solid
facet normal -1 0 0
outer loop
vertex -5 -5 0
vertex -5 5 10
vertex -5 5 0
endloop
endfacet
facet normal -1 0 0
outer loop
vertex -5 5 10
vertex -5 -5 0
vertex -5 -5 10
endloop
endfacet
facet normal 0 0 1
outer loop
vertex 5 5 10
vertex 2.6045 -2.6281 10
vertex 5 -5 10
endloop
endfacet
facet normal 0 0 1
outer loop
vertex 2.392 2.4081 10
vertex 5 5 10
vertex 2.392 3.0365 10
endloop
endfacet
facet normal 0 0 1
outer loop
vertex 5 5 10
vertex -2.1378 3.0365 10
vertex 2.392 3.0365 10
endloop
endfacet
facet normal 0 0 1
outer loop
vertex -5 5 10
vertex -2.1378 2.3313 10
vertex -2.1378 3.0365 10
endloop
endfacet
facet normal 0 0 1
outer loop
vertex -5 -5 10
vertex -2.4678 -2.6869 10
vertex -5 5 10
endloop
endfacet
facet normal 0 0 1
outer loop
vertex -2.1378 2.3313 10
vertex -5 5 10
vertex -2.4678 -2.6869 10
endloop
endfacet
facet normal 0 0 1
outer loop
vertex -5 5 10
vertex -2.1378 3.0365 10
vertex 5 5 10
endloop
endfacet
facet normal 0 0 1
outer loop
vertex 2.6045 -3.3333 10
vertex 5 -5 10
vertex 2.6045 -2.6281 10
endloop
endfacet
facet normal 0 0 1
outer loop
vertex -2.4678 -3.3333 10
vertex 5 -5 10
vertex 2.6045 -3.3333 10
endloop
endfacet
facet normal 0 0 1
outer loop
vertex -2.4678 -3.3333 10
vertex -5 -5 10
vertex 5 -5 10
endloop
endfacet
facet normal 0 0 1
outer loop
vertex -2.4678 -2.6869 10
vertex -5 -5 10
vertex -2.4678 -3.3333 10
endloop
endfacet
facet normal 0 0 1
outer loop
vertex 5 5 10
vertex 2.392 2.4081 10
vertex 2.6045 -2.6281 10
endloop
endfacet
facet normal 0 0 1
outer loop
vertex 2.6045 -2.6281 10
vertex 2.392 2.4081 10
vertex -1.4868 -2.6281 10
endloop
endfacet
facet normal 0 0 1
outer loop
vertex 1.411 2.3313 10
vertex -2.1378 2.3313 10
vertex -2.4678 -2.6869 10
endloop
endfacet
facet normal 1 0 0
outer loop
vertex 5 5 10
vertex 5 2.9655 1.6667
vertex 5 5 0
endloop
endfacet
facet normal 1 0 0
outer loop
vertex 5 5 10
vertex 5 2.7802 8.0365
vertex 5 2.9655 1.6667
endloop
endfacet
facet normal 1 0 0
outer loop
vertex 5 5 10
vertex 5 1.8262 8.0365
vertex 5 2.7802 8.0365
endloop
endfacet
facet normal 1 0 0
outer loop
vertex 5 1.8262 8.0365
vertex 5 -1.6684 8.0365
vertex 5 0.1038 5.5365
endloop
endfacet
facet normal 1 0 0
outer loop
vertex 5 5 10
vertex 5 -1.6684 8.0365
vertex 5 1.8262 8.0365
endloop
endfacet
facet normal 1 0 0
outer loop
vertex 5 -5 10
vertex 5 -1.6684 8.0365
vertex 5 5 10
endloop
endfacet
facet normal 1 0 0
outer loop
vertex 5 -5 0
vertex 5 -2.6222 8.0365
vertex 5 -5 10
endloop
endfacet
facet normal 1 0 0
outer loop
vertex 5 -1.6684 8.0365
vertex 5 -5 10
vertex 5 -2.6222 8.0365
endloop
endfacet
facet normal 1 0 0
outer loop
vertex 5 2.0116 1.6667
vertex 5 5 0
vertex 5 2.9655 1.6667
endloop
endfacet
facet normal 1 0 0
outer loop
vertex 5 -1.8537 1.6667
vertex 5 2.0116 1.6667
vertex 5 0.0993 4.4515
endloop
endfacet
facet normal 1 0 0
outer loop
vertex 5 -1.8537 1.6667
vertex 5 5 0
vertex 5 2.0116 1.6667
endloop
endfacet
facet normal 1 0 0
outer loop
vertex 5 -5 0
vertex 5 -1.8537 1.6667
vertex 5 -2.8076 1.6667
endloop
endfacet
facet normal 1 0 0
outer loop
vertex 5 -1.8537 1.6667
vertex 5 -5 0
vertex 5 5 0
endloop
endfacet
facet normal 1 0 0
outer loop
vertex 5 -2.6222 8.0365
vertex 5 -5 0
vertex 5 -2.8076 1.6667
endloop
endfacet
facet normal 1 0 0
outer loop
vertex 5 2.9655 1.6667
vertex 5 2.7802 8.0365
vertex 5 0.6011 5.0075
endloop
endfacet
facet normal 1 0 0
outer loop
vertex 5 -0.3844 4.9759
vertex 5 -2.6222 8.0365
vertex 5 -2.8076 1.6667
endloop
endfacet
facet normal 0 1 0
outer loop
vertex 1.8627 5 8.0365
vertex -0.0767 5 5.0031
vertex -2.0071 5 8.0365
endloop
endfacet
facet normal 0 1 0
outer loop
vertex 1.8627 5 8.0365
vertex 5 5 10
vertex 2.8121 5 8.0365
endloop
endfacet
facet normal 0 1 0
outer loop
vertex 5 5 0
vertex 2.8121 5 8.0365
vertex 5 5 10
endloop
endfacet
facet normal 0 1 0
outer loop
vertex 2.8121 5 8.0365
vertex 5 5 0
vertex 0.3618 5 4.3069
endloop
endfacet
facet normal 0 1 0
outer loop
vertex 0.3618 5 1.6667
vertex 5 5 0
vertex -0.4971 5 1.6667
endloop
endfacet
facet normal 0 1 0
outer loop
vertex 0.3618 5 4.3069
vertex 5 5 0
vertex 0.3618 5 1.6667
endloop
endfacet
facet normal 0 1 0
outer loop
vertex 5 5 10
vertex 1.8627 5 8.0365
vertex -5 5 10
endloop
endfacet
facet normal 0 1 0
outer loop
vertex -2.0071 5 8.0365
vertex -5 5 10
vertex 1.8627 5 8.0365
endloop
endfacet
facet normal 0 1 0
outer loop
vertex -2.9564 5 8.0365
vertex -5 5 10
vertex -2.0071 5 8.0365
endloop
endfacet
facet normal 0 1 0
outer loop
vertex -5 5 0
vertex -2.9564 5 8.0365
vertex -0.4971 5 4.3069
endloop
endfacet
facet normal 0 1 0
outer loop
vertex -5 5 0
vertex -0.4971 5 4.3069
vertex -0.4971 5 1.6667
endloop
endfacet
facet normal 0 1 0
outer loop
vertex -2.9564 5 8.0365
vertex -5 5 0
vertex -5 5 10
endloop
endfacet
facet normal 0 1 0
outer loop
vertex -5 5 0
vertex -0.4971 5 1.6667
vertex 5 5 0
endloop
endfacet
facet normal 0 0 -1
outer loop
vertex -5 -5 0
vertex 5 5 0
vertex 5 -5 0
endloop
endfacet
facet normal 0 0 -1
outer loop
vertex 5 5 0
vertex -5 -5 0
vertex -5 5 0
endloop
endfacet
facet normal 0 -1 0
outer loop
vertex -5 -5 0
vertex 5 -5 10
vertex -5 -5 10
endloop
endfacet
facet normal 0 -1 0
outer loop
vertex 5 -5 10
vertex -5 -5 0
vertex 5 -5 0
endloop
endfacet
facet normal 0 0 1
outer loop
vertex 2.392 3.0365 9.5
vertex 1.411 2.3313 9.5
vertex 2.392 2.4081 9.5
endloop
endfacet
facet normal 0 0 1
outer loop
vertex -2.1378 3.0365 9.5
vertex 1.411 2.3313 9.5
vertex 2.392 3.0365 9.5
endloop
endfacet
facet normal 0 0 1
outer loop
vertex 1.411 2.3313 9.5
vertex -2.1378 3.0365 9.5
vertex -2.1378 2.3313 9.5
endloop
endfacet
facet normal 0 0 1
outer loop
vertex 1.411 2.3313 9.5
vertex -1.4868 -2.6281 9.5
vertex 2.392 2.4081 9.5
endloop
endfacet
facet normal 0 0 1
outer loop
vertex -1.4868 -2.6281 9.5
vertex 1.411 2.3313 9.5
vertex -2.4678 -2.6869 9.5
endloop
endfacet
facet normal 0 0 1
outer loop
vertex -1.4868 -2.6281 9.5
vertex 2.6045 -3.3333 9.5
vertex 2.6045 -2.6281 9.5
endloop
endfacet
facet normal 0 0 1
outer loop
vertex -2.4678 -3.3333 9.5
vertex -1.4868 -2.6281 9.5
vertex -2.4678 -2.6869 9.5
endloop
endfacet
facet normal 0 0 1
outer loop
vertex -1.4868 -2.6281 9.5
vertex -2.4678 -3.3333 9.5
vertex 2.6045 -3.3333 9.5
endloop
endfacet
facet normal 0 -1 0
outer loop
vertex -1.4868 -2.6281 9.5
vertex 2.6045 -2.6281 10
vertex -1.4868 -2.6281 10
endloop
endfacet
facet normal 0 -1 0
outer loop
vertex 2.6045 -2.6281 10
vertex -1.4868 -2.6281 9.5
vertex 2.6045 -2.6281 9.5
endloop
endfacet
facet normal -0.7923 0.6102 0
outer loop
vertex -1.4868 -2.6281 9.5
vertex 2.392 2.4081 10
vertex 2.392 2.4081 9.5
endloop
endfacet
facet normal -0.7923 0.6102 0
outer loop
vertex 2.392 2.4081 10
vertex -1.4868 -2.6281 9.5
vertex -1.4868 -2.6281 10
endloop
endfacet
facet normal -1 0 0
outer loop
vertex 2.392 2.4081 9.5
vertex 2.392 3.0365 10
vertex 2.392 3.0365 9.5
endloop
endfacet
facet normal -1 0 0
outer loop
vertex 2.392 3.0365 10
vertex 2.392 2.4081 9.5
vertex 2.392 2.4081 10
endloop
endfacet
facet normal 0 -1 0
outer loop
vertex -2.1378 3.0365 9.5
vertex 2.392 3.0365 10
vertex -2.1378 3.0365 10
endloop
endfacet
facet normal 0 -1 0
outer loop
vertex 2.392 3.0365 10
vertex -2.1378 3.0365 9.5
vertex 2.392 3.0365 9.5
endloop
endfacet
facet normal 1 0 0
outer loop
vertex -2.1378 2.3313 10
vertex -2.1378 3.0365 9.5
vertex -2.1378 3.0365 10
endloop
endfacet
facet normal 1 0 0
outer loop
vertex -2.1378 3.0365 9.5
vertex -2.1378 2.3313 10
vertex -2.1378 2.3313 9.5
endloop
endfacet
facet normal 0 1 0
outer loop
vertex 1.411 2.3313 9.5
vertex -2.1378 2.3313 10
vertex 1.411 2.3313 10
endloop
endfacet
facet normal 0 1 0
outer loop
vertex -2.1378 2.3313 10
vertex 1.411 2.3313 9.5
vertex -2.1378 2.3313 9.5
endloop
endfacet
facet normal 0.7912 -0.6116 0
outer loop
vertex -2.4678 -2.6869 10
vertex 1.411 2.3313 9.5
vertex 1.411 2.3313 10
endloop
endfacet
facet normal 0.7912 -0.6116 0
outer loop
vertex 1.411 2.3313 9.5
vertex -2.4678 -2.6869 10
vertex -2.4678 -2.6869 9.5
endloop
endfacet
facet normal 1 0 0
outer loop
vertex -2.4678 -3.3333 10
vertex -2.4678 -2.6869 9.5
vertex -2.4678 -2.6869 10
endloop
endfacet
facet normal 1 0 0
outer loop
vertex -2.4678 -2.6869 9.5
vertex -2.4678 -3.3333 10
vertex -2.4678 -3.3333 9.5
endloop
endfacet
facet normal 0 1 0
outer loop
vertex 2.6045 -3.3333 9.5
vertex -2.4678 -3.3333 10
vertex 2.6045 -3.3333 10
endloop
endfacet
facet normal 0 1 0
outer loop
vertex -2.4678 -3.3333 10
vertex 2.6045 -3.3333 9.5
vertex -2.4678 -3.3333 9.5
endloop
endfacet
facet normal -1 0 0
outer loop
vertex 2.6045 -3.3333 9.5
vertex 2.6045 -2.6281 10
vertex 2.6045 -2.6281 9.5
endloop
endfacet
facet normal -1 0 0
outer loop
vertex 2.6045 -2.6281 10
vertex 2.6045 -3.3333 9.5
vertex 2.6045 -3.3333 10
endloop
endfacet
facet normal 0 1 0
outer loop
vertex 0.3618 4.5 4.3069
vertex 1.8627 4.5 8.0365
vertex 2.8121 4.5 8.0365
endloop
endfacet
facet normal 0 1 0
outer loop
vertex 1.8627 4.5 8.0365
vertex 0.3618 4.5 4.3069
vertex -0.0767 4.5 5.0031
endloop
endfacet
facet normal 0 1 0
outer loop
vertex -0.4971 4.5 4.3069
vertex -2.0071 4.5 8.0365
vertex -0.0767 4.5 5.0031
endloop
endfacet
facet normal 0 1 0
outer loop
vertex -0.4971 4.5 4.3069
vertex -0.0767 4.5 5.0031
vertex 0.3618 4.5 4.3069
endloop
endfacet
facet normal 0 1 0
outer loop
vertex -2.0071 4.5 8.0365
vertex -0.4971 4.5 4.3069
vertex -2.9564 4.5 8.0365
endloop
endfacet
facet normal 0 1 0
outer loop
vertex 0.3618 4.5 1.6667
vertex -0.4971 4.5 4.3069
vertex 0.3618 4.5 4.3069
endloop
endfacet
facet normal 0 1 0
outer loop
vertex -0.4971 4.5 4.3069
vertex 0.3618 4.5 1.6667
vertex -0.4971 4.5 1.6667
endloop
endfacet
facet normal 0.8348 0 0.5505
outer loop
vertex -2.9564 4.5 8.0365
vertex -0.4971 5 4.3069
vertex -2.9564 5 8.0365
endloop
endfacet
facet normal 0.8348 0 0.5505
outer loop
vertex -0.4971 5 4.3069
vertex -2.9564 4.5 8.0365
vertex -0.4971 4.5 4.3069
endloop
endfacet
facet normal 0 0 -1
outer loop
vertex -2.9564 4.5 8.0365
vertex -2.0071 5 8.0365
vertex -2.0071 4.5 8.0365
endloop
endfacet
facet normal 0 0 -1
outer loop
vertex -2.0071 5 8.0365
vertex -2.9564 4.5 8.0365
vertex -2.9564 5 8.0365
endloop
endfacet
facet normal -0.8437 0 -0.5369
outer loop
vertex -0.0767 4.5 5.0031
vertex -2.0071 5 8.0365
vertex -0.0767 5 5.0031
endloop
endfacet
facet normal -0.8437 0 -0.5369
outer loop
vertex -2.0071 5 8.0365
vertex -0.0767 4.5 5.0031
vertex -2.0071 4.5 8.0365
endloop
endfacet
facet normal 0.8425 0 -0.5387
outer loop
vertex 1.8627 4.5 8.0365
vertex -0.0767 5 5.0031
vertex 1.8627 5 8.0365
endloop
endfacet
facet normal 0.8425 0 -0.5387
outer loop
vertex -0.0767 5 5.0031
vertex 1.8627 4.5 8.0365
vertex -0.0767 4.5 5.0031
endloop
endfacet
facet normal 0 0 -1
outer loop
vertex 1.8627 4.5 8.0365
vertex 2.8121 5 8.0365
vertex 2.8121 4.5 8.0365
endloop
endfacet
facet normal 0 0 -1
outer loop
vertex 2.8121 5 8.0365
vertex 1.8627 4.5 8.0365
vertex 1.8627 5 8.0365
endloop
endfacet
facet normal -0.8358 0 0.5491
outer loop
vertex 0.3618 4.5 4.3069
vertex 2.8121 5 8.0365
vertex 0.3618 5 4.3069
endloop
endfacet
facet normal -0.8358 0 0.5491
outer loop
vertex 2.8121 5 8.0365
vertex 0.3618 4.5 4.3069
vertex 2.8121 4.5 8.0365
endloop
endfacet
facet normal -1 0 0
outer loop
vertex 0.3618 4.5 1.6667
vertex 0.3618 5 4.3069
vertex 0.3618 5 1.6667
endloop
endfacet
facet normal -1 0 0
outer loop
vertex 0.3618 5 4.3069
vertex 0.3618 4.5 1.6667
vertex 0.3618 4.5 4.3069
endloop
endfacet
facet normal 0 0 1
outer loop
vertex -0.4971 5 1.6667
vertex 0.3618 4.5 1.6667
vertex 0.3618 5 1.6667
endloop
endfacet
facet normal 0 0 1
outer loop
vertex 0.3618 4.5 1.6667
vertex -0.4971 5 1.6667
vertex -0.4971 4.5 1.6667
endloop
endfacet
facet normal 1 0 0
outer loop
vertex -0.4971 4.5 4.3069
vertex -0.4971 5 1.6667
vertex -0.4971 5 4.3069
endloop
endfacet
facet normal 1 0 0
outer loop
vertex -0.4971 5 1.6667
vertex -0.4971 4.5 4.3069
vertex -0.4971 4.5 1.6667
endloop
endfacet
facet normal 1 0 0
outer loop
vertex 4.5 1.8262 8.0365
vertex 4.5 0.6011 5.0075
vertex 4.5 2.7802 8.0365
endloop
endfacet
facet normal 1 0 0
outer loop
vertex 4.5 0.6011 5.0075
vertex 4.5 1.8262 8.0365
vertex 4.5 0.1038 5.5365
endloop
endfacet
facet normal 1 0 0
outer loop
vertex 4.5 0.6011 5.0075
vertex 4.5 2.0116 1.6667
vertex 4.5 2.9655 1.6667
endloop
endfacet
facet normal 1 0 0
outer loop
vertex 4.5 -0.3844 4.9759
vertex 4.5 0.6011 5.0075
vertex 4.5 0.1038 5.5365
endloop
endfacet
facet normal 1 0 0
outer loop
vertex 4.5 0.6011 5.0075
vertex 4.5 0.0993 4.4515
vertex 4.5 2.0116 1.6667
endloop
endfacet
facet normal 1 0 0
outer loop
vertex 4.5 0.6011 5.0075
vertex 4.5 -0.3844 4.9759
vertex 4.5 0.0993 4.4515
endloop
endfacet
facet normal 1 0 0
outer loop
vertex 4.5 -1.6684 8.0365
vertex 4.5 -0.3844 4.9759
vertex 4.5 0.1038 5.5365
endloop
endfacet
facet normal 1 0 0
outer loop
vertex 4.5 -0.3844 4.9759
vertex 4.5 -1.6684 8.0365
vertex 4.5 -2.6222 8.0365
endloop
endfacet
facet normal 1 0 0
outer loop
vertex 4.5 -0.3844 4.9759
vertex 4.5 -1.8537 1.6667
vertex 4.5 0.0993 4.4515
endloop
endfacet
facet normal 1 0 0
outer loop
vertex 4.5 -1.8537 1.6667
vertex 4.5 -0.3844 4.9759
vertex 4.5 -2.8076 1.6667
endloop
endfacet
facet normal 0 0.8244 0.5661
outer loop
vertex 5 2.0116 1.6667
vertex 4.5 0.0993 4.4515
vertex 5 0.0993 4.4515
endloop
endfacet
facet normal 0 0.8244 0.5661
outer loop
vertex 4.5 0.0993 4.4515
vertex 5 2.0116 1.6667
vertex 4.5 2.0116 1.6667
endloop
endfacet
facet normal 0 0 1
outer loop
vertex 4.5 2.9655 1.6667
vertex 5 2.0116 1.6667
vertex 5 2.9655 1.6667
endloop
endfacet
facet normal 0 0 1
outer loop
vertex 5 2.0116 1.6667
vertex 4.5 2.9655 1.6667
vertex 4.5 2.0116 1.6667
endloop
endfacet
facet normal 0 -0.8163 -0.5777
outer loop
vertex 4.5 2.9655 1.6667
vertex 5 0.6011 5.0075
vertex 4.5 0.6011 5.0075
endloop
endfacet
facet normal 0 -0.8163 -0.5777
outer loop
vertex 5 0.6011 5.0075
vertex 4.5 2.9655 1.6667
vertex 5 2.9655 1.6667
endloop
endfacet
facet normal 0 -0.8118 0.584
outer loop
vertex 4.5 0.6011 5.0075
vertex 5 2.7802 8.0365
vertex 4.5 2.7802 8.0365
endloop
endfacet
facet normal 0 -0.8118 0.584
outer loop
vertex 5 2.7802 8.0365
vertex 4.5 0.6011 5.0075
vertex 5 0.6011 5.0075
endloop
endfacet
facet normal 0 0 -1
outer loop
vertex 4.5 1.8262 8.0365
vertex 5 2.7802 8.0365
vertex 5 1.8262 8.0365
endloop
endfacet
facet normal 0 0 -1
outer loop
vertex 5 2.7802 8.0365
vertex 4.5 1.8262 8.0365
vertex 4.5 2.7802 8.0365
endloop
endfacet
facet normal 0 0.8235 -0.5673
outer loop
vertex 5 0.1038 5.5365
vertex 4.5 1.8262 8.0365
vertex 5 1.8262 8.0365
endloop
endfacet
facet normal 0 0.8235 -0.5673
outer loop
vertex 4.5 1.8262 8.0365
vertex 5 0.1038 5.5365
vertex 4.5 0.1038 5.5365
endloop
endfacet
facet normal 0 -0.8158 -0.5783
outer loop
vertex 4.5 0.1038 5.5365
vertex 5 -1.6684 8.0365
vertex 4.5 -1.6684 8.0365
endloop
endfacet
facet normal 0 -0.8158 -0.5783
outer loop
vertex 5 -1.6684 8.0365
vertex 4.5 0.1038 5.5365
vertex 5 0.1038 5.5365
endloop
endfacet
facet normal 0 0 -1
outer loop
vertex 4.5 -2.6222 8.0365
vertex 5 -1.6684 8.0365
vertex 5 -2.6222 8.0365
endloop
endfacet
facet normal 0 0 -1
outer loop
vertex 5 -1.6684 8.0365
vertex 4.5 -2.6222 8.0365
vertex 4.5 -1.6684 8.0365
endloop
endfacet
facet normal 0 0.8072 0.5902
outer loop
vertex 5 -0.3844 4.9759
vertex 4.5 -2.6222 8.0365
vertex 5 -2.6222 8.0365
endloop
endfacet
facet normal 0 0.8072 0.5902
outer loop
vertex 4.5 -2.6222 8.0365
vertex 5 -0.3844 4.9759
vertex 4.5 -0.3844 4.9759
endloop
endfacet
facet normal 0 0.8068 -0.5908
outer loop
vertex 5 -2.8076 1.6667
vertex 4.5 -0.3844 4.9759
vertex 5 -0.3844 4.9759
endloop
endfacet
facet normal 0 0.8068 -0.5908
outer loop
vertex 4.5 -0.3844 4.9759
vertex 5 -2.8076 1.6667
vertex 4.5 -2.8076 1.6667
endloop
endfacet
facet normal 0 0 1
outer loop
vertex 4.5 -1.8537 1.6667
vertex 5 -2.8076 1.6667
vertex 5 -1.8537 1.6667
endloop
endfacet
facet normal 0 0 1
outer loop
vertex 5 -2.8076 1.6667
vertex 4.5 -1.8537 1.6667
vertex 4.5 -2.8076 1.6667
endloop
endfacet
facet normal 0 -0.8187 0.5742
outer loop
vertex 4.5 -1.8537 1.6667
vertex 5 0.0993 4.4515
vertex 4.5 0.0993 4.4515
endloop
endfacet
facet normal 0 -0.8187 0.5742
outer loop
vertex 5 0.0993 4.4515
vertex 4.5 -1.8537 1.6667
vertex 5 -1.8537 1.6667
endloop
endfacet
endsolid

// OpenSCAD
//@Description: model of a testing cube
//@Author: Yurre
//@Version: 1

//Size of the cube in mm
cubeSize = 10;

translate([0,0, cubeSize / 2]){
    difference(){
        cube(cubeSize, center = true);
        translate([0,-(cubeSize / 3), (cubeSize / 2) - 0.5]){
            linear_extrude(2){
                text("Z", size = cubeSize / 1.5, halign = "center");
            }
        }
        translate([0,( cubeSize / 2) - 0.5, -(cubeSize / 3)]){
            rotate([270, 180, 0]){
                linear_extrude(2){
                    text("Y", size = cubeSize / 1.5, halign = "center");
                }
            }
        }
        translate([(cubeSize / 2) - 0.5, 0, -(cubeSize / 3)]){
            rotate([90, 0, 90]){
                linear_extrude(2){
                    text("X", size = cubeSize / 1.5, halign = "center");
                }
            }
        }
    }
}
